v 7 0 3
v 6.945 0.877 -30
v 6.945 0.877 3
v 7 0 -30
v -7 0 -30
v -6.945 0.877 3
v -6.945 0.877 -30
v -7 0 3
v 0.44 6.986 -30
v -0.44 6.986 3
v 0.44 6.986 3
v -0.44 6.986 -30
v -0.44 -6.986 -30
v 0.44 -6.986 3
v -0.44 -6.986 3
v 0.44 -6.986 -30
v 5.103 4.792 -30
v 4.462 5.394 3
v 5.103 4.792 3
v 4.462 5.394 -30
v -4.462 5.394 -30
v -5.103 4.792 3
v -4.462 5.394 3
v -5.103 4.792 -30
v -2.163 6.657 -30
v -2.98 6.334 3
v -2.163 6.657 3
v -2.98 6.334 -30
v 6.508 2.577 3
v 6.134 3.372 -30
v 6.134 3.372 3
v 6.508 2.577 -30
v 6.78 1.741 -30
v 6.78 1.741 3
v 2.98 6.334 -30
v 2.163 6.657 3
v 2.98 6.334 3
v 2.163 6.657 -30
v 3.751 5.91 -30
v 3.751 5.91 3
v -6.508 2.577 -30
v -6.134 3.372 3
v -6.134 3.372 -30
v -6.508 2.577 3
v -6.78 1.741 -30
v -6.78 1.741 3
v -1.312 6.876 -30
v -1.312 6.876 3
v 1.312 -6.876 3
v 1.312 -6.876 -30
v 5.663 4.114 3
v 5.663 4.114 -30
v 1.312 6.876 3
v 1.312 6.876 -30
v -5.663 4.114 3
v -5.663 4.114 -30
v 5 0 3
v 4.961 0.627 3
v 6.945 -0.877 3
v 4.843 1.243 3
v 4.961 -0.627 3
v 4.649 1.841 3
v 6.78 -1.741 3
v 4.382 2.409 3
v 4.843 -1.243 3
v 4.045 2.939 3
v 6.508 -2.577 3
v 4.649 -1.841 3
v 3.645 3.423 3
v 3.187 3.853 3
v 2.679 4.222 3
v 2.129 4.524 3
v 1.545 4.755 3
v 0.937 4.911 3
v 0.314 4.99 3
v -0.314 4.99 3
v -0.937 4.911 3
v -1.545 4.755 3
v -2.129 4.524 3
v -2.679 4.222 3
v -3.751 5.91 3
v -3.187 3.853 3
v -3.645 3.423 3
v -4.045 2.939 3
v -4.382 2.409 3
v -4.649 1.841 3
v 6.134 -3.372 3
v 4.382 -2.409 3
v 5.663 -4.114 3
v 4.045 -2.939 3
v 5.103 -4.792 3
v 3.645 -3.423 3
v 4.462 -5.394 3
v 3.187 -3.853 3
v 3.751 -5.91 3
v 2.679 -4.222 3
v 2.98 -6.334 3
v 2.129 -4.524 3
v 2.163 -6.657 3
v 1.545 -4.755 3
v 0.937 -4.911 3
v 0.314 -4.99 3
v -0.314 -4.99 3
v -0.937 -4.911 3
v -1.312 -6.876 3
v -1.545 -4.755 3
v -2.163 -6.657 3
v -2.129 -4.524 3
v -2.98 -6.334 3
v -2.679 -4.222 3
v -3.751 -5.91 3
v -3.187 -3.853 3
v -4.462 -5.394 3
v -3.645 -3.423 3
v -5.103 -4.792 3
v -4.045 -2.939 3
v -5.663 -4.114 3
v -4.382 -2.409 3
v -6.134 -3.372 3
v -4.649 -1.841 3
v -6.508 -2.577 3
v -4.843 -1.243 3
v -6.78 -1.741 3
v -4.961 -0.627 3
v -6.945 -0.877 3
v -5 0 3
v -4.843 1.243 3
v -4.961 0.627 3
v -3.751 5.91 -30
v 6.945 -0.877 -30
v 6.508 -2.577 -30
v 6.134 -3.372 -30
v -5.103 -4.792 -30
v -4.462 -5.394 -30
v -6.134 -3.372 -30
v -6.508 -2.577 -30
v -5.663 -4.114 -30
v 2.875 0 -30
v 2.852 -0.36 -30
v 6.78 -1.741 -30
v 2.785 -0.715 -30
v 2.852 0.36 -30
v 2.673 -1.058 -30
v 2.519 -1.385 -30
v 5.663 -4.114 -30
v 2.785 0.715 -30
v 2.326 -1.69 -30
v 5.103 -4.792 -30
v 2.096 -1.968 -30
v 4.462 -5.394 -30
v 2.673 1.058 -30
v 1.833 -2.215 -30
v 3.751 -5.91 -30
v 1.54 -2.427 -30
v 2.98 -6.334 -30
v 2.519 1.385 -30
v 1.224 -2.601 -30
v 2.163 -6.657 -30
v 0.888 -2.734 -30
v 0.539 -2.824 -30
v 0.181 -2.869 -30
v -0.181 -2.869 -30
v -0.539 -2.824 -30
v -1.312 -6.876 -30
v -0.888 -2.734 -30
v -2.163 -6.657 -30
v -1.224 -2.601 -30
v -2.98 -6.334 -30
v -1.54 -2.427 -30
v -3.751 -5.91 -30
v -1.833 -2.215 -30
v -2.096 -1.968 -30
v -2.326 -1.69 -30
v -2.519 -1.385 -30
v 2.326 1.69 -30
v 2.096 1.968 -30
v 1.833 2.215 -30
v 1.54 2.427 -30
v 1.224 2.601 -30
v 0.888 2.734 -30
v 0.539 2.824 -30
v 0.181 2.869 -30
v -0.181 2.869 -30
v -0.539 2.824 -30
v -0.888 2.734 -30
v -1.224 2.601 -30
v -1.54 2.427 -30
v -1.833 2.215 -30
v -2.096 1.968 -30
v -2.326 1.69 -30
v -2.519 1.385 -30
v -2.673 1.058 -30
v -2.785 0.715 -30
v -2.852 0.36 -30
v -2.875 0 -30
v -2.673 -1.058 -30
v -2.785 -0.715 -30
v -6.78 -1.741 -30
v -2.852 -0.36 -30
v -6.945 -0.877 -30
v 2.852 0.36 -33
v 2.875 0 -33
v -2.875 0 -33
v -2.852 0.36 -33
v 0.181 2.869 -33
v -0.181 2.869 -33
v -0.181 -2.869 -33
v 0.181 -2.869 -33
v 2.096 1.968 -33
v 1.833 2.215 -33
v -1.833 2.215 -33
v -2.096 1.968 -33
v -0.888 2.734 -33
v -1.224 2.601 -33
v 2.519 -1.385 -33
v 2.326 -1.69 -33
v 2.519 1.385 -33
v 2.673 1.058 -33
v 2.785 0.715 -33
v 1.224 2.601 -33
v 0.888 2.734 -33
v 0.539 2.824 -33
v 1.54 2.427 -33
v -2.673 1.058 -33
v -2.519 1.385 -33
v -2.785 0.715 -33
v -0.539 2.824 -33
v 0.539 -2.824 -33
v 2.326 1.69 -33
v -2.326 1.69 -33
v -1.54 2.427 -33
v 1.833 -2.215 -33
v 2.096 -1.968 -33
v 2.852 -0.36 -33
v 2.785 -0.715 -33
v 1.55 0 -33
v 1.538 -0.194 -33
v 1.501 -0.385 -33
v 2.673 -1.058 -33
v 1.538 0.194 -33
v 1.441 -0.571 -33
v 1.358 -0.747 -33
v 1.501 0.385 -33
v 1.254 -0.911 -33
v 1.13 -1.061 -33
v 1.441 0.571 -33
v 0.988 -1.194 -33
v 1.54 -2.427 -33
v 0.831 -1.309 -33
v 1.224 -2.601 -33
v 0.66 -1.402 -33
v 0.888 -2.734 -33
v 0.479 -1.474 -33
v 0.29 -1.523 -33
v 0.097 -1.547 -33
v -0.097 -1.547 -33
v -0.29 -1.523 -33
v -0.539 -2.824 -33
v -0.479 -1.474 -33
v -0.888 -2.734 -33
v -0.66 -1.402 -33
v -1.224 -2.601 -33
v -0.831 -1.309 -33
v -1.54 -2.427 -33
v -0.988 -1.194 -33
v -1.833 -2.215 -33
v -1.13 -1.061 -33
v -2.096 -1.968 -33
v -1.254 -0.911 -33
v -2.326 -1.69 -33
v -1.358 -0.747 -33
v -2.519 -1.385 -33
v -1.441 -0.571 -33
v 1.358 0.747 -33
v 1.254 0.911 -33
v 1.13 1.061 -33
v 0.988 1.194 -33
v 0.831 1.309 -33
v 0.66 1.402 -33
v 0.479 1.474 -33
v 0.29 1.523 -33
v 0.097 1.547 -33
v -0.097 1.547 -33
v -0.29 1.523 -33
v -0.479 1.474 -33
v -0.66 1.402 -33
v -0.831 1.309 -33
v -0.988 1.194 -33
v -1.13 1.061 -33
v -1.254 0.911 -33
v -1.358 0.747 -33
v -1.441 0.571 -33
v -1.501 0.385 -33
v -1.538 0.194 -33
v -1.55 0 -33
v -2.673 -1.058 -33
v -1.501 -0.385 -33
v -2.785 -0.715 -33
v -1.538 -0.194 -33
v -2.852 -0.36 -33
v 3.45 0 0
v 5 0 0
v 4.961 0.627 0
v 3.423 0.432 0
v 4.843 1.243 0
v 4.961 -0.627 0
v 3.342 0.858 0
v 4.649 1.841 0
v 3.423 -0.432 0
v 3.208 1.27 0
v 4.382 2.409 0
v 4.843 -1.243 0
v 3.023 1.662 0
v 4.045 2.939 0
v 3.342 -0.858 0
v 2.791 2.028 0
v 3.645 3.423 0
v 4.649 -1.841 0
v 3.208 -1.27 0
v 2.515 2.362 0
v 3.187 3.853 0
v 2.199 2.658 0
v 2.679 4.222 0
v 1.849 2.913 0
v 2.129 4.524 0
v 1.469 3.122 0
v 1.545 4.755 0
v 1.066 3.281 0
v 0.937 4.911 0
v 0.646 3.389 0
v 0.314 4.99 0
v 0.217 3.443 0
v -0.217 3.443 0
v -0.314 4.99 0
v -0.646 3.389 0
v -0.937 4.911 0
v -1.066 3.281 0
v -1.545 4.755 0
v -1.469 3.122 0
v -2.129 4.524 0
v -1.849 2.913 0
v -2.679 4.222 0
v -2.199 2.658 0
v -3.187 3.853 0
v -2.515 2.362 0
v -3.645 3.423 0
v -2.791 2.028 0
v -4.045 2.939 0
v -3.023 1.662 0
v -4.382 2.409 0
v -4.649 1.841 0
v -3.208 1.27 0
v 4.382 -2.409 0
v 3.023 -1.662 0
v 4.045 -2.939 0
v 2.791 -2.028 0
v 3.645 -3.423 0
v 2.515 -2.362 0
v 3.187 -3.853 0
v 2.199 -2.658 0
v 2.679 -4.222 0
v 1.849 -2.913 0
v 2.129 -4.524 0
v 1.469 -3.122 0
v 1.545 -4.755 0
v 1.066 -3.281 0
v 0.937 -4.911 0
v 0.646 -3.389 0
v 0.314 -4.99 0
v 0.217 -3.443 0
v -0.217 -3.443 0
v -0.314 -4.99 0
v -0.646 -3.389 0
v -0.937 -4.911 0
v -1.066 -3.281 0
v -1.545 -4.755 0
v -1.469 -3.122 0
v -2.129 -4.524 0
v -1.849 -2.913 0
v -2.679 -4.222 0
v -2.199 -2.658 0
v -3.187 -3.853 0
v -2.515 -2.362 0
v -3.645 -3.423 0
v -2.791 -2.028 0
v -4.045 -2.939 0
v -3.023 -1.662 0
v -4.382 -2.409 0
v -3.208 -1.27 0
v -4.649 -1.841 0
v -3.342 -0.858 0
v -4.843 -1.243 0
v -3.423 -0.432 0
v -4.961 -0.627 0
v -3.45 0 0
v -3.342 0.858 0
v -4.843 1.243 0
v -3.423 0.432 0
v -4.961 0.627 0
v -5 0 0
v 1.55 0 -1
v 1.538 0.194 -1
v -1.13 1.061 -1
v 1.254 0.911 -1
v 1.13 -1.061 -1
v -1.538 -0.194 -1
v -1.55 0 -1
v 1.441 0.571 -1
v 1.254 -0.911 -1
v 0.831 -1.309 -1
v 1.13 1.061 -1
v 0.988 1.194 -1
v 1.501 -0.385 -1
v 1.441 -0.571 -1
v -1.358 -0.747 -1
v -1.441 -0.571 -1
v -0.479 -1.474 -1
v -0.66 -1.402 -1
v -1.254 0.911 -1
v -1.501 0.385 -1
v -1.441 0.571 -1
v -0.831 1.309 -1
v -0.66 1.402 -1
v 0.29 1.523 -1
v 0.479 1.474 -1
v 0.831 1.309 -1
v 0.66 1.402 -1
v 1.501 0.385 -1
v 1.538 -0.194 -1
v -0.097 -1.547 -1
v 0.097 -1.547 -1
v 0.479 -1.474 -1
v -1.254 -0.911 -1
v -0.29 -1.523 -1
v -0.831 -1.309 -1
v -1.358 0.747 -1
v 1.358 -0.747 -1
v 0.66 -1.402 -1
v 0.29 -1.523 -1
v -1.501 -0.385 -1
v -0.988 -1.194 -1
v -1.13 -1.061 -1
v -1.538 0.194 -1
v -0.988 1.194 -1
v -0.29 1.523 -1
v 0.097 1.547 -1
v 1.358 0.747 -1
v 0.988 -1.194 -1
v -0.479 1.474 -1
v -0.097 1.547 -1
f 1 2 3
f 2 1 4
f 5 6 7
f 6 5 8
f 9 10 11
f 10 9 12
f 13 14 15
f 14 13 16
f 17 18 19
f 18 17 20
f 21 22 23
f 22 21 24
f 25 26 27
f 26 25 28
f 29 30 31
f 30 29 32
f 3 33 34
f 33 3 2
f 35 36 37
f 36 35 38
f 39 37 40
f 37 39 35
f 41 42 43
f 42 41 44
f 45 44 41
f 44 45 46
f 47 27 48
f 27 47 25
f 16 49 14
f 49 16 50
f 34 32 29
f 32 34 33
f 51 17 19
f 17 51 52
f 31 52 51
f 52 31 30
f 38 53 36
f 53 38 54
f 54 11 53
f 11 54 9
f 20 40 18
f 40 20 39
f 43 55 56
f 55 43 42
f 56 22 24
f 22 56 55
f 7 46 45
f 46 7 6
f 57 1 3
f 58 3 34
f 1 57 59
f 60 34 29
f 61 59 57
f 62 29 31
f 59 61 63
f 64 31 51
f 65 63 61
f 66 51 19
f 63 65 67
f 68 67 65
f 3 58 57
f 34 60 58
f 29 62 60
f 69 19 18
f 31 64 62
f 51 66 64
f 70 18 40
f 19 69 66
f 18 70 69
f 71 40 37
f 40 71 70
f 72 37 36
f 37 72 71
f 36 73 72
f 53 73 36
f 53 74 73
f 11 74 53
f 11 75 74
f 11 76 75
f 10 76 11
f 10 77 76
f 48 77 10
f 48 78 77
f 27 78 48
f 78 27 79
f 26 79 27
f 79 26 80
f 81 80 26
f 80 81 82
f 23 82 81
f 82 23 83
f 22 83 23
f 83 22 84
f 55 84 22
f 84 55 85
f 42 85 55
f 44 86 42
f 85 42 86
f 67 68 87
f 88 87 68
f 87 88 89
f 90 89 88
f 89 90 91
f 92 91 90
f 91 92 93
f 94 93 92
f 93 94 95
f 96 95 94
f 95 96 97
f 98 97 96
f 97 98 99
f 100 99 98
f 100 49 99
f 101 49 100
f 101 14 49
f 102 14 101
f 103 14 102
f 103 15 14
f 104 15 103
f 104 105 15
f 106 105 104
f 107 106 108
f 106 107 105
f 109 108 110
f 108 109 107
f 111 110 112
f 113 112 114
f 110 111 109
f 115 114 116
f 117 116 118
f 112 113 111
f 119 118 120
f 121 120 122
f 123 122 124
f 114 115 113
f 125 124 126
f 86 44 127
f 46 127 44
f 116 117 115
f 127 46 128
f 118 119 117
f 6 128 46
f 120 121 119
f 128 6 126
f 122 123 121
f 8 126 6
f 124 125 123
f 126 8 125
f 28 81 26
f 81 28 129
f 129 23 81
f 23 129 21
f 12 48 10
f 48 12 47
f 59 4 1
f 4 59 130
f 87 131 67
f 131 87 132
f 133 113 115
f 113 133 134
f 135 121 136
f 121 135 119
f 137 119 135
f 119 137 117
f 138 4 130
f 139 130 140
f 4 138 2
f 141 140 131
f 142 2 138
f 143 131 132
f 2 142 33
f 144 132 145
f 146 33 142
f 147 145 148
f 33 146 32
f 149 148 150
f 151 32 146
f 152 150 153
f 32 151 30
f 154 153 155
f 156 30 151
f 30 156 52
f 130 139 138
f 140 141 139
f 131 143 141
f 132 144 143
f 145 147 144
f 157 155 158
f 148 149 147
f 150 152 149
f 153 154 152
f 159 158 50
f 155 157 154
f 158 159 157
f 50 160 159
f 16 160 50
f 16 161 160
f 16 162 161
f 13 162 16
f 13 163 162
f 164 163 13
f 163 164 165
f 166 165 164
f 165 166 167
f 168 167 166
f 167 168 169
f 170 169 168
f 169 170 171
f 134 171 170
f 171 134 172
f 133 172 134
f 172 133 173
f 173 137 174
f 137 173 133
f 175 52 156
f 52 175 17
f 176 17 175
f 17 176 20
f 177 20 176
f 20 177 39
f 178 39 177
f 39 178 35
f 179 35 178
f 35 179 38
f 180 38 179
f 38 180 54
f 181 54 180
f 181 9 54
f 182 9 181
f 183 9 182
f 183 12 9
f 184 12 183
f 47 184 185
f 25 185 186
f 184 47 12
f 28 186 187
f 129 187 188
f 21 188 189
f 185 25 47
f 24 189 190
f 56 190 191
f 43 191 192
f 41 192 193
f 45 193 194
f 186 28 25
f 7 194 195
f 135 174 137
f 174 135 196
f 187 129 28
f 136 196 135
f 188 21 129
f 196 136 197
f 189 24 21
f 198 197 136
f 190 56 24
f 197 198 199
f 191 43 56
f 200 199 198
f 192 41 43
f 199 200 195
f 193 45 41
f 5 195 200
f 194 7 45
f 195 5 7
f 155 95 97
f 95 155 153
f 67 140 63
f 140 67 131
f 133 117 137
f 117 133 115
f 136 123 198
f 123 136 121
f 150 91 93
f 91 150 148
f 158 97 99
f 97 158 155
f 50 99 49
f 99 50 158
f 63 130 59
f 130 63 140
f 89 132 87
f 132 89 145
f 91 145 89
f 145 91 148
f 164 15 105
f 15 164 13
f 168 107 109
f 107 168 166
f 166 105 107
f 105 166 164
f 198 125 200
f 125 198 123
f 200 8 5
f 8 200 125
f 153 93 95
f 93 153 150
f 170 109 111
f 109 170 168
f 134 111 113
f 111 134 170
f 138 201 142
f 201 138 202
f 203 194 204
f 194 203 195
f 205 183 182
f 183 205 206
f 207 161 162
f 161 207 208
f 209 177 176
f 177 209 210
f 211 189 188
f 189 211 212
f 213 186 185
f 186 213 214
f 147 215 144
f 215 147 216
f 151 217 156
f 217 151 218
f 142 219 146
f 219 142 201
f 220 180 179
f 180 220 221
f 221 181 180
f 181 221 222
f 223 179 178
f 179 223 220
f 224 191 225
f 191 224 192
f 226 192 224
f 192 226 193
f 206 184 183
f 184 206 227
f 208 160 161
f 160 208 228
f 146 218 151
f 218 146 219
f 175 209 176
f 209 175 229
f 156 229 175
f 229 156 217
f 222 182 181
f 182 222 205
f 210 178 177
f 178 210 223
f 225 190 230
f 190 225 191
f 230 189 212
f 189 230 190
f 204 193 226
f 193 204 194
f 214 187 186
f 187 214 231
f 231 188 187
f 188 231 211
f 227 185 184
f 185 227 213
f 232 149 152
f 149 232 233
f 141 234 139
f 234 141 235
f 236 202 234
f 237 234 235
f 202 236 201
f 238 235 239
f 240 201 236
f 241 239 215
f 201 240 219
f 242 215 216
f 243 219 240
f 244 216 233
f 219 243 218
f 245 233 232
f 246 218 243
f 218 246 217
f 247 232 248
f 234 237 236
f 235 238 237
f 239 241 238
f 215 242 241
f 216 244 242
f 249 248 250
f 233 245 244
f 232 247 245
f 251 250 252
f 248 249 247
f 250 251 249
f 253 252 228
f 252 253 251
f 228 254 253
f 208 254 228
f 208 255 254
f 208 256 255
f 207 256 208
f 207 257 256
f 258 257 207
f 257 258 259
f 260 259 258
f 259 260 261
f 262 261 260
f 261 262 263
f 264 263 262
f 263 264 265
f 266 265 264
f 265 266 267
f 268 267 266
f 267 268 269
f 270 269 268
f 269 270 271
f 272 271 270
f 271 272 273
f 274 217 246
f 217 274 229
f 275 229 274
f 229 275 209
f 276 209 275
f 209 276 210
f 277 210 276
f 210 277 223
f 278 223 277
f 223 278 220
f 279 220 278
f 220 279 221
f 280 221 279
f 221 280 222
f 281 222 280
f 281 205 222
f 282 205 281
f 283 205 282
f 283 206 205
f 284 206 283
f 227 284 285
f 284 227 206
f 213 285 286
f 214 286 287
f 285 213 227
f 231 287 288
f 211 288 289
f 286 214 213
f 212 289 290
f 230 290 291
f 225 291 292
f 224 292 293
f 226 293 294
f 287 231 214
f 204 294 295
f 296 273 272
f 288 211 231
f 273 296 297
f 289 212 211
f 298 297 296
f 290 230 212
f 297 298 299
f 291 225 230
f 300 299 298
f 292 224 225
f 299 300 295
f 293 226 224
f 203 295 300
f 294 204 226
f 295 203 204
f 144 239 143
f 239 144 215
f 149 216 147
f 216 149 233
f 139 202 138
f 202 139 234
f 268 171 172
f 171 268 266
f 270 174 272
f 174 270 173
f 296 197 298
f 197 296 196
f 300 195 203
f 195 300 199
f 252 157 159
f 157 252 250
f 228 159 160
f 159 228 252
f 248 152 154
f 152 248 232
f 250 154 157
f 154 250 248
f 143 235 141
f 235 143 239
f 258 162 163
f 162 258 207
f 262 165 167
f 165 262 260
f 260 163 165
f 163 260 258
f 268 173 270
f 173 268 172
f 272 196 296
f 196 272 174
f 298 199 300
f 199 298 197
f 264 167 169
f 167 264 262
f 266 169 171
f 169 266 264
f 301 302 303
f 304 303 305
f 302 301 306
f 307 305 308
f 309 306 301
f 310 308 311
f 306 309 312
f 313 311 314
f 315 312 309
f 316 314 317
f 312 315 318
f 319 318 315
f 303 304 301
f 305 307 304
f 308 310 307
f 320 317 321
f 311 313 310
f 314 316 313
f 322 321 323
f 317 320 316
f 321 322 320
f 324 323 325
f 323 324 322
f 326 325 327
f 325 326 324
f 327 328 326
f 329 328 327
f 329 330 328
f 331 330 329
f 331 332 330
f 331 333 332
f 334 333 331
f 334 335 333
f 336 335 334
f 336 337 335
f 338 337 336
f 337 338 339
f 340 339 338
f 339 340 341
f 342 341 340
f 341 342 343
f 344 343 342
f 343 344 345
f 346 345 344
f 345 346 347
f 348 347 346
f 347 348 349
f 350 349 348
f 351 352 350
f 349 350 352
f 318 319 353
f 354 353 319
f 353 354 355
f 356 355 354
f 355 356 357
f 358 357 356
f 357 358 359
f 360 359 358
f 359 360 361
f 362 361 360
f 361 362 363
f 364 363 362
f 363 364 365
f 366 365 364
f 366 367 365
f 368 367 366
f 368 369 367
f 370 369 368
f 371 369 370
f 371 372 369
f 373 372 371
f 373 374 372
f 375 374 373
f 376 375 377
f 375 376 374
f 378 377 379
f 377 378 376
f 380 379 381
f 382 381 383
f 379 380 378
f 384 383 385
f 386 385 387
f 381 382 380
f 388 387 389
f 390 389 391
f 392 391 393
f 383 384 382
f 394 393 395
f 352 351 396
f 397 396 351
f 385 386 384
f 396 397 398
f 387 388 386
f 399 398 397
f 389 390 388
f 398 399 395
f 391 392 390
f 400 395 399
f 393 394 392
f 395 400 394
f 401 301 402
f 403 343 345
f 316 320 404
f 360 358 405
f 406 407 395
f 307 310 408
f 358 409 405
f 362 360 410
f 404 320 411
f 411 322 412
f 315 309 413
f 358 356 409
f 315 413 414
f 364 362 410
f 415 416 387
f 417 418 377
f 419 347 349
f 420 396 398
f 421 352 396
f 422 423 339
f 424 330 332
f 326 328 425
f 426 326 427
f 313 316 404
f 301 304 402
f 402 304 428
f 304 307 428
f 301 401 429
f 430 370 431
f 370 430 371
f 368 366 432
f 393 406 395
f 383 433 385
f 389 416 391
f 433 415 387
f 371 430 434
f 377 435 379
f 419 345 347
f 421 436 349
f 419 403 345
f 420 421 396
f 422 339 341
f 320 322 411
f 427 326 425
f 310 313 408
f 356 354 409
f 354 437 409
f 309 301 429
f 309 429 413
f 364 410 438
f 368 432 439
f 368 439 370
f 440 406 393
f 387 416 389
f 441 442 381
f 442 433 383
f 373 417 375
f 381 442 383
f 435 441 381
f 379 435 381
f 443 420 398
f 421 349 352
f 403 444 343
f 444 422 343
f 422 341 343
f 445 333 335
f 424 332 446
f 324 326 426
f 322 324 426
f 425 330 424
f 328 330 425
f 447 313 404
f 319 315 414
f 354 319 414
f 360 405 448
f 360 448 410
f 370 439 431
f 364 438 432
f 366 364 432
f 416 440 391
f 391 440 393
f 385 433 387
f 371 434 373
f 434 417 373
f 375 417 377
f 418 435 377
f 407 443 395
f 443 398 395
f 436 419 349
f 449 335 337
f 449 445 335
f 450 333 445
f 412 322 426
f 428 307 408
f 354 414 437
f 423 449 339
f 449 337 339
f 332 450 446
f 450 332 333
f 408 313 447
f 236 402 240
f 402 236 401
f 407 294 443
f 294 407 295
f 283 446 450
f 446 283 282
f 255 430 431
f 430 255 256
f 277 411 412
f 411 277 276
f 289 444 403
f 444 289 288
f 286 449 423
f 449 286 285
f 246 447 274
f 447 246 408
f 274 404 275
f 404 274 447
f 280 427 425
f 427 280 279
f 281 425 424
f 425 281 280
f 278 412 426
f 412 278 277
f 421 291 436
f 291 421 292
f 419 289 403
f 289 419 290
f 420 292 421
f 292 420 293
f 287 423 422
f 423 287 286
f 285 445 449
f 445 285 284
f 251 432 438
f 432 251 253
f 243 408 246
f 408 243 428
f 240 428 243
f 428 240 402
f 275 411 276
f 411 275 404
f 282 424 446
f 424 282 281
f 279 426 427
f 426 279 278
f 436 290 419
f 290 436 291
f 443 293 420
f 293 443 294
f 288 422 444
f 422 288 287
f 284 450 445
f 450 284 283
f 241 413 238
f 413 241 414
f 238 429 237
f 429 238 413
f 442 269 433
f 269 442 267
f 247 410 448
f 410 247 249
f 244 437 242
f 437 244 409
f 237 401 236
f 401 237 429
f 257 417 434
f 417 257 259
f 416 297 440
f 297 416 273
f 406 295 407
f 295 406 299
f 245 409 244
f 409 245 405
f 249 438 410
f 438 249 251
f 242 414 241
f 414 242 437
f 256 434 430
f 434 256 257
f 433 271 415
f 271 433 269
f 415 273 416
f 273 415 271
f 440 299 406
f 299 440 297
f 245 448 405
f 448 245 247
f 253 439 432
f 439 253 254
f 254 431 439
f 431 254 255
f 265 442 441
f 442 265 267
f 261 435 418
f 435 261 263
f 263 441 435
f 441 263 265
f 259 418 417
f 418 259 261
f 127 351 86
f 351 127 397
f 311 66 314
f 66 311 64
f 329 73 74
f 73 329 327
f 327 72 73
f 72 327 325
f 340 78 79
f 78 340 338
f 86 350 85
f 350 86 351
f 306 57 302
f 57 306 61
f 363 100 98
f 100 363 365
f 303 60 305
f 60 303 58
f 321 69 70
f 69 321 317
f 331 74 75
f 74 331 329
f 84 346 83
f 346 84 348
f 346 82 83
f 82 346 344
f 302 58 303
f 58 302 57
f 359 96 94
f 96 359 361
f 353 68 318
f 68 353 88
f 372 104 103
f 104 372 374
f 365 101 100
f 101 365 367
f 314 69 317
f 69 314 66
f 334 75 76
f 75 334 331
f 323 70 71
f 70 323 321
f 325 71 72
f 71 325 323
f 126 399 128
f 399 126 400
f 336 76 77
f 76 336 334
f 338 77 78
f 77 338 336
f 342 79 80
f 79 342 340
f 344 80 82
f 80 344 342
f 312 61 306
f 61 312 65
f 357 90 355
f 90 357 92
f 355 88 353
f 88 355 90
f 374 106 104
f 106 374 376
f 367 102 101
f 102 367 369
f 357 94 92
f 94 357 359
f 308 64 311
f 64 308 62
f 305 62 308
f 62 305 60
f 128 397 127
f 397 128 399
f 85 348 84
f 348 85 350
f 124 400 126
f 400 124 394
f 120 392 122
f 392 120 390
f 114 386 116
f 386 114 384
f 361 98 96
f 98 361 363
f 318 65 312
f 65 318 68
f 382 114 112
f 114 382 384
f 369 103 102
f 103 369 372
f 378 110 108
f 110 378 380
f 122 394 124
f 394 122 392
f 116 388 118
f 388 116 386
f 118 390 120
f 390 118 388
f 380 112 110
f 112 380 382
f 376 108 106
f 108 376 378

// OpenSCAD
$fn = 50;

difference() {
	union() {
		translate(v = [0, 0, -30.0]) {
			cylinder(h = 33, r = 7.0);
		}
		#translate(v = [0, 0, -33.0]) {
			cylinder(h = 33, r = 2.875);
		}
	}
	union() {
		translate(v = [0, 0, 0]) {
			rotate(a = [0, 0, 0]) {
				difference() {
					union() {
						translate(v = [0, 0, -33.0]) {
							cylinder(h = 33, r = 1.25);
						}
						translate(v = [0, 0, -1.0]) {
							cylinder(h = 1.0, r1 = 1.55, r2 = 3.45);
						}
						translate(v = [0, 0, -33.0]) {
							cylinder(h = 33, r = 1.55);
						}
						translate(v = [0, 0, -33.0]) {
							cylinder(h = 33, r = 1.25);
						}
					}
					union();
				}
			}
		}
		#cylinder(h = 3, r = 5.0);
	}
}
